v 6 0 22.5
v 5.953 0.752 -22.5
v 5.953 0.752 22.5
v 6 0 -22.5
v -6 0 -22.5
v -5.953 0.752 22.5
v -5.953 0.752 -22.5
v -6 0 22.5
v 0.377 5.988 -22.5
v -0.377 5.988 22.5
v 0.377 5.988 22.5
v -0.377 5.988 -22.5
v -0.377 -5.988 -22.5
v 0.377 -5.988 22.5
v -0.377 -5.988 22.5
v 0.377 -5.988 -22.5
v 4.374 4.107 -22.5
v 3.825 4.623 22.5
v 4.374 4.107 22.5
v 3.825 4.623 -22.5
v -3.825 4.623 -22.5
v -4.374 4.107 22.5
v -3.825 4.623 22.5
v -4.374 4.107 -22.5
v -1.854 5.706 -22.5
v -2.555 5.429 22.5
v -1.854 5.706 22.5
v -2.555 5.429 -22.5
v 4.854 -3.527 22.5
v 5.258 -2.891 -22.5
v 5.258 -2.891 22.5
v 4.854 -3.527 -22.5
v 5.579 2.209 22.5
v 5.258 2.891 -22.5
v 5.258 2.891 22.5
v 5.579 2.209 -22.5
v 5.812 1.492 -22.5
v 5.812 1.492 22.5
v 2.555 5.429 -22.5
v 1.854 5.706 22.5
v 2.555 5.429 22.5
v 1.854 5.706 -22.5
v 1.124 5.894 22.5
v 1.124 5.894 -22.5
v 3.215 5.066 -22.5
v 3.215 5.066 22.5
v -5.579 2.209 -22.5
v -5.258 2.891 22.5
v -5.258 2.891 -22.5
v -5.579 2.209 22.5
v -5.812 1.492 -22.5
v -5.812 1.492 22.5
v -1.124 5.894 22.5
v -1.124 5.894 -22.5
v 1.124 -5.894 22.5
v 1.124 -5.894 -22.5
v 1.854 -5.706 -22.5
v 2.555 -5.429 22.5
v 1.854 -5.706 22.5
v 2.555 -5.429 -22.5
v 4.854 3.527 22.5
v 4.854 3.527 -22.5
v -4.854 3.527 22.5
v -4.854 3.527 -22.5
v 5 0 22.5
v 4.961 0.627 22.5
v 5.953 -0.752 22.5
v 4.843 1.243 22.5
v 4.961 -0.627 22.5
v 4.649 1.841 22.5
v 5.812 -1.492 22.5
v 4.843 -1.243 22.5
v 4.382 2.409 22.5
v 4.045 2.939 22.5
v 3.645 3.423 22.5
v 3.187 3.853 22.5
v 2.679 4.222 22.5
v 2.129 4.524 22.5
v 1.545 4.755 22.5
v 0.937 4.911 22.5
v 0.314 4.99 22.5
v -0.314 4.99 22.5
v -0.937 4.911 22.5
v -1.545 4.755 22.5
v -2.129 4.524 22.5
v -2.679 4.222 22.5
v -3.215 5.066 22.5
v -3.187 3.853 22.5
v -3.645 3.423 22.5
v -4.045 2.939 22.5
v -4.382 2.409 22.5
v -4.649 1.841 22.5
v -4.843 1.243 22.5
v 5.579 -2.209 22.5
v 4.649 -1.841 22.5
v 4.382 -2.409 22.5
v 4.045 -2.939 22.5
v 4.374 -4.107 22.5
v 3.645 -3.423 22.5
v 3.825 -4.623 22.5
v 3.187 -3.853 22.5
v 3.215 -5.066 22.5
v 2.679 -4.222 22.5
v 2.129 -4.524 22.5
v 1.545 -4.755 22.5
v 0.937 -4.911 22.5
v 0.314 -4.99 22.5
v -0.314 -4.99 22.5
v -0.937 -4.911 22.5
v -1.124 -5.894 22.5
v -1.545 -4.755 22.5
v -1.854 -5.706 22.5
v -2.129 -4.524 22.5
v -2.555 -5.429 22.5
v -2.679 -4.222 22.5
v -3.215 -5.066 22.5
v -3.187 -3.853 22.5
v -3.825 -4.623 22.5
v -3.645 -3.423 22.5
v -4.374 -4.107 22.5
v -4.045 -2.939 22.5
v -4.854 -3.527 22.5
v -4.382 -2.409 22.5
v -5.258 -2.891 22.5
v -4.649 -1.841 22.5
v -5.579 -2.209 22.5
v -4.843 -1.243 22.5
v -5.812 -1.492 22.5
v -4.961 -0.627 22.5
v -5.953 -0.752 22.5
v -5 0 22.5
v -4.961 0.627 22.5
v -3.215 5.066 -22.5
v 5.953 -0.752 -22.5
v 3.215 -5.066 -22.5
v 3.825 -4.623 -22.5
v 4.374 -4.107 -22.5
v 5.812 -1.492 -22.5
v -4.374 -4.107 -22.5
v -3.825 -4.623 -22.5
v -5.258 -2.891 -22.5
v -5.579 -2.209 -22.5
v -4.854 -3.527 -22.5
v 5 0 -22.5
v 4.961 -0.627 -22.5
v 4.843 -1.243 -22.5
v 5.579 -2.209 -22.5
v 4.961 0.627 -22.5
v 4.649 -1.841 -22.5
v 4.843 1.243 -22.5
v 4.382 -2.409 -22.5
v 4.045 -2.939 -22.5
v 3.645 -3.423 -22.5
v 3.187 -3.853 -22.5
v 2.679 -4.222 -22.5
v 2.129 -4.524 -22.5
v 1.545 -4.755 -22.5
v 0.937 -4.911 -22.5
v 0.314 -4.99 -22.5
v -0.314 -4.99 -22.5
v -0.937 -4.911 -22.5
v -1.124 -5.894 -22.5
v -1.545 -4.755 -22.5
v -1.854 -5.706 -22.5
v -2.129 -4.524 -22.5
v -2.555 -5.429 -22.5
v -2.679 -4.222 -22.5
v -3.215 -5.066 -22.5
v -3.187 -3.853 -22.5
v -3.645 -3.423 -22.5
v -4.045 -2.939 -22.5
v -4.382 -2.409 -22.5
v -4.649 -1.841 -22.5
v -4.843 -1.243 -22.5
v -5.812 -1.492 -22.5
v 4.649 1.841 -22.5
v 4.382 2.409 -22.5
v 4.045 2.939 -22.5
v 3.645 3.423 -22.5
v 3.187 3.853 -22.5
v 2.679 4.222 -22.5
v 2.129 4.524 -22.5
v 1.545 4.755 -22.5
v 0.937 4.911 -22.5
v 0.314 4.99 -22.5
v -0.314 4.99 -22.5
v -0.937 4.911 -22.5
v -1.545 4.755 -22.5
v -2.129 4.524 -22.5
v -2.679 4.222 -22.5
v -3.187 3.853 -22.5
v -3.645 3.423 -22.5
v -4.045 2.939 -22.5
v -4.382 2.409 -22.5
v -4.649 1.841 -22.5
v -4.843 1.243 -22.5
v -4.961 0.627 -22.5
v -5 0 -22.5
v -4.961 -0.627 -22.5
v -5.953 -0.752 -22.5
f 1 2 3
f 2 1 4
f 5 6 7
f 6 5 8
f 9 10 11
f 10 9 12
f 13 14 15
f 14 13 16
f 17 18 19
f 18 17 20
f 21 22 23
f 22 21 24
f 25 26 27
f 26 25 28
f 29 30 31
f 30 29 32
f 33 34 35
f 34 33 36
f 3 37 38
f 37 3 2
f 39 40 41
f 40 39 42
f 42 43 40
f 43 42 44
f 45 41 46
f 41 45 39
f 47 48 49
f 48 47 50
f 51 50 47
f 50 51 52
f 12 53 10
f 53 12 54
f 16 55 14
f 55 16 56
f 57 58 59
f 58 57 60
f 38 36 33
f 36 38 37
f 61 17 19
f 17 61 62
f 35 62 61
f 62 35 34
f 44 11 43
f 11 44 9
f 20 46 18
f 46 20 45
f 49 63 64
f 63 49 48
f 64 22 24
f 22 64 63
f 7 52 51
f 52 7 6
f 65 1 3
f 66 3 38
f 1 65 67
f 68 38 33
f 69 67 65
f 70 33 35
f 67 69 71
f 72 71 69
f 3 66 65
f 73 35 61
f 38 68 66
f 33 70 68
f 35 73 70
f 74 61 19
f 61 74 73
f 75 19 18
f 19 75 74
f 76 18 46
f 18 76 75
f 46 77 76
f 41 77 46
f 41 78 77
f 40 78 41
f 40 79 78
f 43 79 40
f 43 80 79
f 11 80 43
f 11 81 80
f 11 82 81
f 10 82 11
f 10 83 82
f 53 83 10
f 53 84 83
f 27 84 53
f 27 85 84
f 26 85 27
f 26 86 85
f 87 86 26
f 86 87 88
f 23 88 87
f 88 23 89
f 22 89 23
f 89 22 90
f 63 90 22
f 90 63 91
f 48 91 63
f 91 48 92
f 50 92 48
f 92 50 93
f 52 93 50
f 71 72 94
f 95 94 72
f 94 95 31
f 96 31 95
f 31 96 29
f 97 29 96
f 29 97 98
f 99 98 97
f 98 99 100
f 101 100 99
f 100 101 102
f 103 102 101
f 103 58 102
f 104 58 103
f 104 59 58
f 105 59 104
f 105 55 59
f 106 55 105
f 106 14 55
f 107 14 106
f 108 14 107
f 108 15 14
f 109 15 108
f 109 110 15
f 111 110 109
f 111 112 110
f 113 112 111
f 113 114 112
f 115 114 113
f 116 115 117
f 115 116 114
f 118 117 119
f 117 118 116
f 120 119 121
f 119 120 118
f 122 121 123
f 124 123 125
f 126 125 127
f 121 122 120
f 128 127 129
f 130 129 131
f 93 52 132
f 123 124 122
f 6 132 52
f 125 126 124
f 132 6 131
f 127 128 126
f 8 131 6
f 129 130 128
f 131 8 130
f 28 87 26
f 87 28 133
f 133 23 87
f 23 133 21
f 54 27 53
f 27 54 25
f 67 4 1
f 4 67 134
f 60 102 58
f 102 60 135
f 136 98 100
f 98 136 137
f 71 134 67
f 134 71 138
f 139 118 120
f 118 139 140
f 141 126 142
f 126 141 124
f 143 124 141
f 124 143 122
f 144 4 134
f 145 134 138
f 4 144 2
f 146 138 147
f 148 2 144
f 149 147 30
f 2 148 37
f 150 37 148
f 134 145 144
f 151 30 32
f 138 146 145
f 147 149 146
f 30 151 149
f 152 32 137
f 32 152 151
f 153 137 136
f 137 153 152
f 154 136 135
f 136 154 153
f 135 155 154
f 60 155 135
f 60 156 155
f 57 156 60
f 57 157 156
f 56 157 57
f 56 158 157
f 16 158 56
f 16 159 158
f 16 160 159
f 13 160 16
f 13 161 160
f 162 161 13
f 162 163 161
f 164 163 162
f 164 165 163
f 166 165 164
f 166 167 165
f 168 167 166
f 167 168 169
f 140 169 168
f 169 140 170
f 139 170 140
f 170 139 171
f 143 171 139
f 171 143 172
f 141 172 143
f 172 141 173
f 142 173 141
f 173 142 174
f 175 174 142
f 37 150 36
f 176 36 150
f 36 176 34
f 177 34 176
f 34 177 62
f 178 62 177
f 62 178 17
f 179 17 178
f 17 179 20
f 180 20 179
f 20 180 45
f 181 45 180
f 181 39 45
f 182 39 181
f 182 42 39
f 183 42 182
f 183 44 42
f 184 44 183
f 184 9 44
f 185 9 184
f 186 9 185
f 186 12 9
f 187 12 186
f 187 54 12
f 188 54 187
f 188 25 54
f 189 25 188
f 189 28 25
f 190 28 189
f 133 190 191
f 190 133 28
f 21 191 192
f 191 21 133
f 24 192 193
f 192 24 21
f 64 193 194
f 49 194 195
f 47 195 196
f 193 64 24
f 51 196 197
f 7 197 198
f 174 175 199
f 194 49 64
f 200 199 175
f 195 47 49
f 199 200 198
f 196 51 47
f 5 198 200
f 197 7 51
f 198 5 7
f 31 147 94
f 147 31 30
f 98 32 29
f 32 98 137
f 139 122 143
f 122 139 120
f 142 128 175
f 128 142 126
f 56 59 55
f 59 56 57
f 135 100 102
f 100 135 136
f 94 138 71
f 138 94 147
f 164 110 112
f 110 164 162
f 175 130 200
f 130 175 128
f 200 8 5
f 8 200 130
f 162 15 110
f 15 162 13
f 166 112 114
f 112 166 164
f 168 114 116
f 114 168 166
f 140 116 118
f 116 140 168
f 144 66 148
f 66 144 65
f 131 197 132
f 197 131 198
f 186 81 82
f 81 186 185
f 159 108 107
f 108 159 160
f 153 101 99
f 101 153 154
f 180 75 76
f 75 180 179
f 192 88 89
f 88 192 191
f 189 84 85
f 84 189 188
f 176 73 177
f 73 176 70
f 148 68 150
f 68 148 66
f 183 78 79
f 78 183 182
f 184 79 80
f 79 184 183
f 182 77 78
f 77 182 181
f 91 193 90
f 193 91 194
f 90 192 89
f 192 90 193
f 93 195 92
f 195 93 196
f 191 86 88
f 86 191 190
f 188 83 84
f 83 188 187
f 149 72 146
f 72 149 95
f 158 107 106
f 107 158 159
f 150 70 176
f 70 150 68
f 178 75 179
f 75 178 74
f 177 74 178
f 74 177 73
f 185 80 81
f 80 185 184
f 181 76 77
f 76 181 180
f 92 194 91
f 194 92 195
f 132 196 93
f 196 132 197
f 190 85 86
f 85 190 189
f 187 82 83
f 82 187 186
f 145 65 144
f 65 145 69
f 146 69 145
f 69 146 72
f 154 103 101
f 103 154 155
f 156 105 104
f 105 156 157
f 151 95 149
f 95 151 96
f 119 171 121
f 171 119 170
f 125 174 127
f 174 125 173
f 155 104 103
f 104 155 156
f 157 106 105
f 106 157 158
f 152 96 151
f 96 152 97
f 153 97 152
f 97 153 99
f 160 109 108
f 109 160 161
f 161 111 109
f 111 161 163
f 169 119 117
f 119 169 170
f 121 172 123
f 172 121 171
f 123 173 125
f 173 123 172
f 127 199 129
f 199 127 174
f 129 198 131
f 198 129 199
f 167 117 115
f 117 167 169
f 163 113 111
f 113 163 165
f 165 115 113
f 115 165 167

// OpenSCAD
$fn = 50;


difference() {
	union() {
		translate(v = [0, 0, -22.5000000000]) {
			cylinder(h = 45, r = 6.0000000000);
		}
	}
	union() {
		translate(v = [0, 0, -100.0000000000]) {
			cylinder(h = 200, r = 5.0000000000);
		}
	}
}
